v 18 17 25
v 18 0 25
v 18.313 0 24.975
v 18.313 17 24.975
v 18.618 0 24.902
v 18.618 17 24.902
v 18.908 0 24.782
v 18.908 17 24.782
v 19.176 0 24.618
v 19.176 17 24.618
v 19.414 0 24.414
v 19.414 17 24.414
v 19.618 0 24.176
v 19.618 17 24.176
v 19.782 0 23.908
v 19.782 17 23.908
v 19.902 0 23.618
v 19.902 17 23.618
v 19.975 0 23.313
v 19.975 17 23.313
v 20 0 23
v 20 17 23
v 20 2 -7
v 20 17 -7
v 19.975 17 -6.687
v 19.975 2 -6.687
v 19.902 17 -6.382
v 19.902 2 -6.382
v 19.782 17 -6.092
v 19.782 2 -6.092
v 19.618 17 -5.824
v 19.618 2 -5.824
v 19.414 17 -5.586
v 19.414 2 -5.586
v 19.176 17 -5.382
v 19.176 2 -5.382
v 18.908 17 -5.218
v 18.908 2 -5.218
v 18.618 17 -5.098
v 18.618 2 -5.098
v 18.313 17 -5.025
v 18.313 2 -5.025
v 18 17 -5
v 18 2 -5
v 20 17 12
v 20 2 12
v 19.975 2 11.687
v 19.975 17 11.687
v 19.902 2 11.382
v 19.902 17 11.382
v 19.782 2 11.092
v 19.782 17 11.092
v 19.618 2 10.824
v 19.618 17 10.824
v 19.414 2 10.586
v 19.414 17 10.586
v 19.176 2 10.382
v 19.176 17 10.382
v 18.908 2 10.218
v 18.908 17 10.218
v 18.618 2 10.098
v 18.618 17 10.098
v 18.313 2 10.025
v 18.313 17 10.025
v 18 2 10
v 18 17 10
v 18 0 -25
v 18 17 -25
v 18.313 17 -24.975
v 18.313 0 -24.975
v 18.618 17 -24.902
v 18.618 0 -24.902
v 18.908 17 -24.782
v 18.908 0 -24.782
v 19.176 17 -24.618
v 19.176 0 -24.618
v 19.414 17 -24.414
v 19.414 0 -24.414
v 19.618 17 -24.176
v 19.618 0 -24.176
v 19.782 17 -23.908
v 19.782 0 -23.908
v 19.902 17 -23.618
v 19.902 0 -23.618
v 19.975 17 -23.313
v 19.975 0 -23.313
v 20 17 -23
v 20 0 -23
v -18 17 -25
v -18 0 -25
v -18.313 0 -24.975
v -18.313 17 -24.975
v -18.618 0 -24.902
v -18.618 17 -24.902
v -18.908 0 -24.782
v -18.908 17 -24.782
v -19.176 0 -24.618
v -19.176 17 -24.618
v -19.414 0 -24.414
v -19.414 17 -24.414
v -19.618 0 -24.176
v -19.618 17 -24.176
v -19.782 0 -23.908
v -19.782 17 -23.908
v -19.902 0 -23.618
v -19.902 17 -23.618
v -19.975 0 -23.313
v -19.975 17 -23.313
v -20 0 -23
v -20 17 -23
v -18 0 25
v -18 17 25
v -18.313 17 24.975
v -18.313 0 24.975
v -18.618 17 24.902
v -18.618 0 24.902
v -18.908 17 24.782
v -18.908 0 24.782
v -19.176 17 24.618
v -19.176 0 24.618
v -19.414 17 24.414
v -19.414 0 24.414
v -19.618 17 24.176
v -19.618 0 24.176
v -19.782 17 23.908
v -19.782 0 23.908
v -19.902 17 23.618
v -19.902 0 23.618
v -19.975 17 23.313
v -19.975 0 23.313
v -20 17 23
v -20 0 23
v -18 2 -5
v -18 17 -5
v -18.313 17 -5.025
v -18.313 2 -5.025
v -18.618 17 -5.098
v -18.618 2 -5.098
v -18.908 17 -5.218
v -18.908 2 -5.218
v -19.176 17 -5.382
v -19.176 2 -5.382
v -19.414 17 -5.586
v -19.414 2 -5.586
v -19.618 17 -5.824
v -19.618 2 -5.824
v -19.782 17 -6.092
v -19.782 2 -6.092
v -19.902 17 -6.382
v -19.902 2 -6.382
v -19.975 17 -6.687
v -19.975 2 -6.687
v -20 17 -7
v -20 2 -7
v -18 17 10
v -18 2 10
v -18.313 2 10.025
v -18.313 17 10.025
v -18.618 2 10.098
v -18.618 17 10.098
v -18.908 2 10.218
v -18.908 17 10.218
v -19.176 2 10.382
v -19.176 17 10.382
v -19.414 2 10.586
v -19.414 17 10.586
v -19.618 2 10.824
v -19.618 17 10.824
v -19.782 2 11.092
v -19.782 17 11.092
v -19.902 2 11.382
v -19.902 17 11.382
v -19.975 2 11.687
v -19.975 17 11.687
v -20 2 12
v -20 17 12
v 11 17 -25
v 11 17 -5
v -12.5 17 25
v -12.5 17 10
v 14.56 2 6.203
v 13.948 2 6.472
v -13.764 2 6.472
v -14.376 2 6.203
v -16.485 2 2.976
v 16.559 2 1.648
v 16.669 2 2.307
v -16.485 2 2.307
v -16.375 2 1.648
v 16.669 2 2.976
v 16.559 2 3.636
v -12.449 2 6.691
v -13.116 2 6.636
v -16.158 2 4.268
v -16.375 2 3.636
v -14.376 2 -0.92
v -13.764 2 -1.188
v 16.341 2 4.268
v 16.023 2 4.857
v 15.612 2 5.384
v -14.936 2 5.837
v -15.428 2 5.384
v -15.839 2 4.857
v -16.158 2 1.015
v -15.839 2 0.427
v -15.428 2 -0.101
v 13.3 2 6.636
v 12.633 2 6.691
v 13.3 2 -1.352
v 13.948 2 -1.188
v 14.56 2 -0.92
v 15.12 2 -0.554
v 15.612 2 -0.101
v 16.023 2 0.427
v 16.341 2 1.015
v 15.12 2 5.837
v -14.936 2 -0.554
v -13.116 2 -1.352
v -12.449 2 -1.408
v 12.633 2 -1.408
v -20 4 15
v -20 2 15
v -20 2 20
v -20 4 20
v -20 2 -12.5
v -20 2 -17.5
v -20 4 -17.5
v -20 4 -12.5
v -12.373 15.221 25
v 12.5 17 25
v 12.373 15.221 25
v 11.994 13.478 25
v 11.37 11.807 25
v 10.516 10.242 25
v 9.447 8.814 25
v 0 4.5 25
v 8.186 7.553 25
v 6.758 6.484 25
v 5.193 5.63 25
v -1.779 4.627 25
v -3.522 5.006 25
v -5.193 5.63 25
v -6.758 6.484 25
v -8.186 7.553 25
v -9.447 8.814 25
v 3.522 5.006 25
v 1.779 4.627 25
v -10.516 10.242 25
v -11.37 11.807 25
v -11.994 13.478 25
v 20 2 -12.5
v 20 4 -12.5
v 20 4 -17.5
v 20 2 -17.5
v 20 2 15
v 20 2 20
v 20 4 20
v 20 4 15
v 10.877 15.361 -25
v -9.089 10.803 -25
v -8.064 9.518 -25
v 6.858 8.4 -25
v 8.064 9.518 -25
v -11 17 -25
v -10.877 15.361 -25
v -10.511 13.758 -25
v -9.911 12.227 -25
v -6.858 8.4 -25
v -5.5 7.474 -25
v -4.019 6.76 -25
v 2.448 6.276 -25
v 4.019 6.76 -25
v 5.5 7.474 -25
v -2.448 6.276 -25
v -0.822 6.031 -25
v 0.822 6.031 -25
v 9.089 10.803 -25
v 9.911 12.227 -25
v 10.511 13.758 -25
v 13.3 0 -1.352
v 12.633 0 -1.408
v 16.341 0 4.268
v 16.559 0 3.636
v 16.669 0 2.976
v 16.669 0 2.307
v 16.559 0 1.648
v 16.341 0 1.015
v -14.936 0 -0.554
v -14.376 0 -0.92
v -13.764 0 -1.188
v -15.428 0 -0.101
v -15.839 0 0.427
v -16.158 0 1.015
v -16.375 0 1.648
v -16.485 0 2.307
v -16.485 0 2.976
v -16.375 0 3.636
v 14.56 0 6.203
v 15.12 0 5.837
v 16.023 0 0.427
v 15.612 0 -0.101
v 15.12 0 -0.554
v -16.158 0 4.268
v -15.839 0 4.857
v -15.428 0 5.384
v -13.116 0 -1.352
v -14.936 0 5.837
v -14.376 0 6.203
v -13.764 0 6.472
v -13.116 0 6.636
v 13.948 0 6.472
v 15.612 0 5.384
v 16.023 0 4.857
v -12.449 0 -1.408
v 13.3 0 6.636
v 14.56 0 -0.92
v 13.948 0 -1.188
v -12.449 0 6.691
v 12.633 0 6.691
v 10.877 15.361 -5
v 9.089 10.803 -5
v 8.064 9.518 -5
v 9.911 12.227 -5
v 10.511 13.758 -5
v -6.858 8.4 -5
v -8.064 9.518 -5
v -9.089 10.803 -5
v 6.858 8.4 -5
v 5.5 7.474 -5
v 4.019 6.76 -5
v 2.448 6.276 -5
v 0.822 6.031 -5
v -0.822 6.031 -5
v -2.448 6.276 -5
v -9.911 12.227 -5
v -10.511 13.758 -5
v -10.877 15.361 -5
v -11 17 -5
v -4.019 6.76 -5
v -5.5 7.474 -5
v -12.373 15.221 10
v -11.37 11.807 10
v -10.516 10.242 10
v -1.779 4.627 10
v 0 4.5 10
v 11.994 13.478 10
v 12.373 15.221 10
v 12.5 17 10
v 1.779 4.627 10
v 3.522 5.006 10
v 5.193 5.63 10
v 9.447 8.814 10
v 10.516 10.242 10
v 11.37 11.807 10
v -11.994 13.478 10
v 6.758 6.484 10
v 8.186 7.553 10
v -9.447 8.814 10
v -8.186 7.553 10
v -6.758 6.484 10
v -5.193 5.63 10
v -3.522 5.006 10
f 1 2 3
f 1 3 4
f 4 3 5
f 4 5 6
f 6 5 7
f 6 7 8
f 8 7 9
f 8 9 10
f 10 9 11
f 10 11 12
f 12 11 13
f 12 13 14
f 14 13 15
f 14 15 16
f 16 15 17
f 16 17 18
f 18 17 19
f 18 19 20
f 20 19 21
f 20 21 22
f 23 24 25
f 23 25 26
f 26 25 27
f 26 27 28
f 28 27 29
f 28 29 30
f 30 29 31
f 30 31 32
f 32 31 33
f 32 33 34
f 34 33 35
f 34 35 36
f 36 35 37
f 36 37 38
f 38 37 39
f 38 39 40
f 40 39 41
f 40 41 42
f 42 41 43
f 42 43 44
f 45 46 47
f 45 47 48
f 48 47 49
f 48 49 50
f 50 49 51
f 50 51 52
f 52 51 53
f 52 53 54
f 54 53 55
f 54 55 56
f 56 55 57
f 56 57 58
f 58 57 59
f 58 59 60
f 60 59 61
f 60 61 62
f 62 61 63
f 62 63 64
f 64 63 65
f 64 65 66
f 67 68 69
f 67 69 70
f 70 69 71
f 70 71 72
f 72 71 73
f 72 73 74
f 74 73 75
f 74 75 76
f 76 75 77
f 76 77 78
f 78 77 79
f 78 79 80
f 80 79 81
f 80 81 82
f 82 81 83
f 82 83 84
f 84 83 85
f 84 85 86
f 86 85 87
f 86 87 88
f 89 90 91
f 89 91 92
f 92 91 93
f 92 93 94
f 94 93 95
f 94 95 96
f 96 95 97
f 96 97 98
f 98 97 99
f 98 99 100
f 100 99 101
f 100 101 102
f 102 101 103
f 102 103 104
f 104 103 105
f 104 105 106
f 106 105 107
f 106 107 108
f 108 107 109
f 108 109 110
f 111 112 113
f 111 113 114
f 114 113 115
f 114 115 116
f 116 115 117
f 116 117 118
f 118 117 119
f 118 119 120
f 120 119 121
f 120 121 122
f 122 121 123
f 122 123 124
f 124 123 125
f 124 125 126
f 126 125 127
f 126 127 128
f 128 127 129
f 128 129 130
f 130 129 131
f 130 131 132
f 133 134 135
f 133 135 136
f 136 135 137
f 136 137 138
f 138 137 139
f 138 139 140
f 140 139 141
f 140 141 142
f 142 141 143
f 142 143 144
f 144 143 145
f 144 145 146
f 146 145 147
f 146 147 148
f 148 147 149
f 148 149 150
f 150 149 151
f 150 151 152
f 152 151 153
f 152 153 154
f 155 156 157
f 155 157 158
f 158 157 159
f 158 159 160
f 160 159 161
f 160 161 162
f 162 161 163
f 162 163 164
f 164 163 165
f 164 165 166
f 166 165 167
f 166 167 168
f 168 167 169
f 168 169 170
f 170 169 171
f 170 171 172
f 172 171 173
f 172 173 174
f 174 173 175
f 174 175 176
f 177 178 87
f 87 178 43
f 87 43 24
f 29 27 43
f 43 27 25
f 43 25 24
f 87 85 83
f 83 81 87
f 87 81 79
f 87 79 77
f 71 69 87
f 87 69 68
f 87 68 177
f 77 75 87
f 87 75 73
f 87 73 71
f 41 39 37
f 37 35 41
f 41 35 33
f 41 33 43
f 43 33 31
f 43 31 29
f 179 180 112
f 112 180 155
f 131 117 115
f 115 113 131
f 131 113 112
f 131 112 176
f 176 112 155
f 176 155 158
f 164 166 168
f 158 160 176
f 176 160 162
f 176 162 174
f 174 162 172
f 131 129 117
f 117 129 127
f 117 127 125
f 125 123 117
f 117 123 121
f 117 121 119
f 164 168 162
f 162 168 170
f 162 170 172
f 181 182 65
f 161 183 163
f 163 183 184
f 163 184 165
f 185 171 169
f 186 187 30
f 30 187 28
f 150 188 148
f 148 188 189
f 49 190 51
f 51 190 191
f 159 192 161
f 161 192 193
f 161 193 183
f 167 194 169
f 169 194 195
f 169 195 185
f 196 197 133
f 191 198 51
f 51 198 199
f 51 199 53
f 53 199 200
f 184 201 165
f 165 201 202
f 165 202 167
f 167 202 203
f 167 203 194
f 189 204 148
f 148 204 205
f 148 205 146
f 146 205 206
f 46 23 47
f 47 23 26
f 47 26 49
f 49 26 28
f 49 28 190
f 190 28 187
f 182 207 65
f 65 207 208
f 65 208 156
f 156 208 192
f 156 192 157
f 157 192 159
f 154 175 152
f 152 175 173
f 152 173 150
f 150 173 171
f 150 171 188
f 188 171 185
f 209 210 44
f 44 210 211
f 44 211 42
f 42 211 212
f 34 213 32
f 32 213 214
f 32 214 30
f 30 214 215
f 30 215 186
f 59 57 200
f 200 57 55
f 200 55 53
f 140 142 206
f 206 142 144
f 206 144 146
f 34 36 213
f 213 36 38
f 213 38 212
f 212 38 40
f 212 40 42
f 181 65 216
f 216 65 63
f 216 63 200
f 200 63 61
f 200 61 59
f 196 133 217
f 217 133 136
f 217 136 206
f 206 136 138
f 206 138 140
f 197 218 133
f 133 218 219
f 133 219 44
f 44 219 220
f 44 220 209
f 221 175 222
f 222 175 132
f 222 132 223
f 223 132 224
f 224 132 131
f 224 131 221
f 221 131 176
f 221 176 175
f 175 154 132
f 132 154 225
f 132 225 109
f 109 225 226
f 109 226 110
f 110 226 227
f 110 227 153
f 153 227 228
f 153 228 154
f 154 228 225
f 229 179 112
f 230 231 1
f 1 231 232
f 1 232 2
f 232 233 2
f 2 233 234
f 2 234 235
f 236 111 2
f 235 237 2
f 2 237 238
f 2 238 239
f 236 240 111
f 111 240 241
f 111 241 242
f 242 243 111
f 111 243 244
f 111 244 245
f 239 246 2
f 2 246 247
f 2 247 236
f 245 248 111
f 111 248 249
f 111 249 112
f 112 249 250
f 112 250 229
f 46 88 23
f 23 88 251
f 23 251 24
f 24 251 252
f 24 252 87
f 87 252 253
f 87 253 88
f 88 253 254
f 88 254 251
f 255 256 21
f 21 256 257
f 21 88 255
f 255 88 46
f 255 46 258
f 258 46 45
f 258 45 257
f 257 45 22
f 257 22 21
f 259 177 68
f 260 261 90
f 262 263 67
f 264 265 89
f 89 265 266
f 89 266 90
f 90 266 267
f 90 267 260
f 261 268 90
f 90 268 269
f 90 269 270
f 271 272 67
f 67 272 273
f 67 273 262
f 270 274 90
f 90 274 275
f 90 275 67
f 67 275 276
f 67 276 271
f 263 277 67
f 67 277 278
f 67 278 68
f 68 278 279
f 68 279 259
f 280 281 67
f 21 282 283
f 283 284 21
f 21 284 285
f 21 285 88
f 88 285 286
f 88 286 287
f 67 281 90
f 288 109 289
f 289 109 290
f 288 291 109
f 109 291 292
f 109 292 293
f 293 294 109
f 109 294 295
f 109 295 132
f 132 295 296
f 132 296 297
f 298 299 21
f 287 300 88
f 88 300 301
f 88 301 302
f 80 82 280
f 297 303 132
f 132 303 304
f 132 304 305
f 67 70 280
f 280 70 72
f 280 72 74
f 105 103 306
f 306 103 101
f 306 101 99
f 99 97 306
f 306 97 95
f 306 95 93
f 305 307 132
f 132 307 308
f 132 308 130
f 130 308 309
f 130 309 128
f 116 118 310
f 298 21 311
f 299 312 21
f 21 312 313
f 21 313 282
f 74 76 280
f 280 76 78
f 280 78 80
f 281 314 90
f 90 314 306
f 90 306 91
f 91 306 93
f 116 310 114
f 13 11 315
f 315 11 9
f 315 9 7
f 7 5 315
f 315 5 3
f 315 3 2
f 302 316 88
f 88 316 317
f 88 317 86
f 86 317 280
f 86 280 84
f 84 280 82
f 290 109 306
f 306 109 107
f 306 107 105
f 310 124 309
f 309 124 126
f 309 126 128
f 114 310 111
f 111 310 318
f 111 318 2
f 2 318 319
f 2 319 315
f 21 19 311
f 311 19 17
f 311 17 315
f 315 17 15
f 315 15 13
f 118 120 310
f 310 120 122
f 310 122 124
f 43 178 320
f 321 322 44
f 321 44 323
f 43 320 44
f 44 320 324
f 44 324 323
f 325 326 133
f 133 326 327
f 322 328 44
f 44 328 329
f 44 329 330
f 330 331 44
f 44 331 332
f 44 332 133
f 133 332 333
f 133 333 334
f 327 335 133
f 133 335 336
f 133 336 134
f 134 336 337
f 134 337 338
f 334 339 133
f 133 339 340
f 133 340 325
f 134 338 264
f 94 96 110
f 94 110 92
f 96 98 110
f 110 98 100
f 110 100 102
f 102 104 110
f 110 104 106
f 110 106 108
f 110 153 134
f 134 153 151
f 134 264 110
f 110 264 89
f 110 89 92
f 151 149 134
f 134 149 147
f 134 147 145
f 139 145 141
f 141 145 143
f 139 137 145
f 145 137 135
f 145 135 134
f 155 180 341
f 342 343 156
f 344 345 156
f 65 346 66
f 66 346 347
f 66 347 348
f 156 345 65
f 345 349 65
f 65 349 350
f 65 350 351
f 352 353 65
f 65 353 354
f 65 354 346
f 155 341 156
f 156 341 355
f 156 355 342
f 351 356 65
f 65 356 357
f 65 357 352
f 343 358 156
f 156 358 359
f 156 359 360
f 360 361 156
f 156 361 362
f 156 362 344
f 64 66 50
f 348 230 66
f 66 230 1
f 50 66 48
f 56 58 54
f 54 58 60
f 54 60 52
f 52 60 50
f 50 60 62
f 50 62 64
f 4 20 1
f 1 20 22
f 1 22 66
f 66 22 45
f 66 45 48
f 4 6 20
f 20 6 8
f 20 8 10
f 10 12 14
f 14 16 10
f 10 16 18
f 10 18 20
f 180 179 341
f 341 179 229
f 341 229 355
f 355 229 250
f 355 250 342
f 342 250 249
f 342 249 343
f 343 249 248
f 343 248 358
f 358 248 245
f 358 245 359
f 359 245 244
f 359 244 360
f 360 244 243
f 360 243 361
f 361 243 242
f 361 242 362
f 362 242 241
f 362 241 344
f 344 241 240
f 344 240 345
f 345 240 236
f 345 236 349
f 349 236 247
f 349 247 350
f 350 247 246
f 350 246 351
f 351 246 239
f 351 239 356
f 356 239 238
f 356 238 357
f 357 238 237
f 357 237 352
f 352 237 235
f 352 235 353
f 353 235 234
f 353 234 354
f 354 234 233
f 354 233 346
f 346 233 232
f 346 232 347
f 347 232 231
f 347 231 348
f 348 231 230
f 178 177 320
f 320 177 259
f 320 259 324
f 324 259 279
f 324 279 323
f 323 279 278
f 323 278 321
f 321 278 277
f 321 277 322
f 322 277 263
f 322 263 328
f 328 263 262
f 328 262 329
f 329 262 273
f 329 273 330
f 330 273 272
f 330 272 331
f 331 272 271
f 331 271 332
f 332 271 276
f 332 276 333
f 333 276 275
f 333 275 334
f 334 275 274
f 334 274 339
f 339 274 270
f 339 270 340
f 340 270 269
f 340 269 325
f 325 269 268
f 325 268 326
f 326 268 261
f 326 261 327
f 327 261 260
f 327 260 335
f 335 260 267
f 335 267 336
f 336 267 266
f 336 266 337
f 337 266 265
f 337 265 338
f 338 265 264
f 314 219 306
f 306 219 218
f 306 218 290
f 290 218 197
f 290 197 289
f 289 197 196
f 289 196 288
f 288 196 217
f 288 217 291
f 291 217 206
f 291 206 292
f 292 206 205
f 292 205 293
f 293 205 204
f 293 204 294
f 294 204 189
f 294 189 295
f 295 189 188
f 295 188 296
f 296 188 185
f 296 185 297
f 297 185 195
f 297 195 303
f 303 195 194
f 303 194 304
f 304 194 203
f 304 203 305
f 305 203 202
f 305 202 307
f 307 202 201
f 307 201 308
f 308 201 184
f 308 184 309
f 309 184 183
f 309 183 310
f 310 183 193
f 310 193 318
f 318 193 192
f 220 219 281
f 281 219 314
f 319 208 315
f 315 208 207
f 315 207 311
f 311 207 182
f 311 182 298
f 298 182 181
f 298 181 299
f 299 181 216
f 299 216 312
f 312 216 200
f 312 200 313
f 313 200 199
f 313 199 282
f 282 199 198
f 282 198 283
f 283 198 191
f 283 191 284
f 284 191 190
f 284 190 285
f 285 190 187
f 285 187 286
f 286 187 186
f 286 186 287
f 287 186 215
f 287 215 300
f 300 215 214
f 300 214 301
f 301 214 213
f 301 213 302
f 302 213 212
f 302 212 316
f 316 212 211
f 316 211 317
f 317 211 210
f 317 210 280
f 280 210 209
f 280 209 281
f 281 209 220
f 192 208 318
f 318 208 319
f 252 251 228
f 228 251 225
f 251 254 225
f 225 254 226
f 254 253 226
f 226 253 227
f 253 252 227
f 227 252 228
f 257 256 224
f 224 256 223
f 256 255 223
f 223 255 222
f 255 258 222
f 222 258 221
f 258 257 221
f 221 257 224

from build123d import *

# Parameters (mm, degrees)
ESBO_O1_W                = 40
ESBO_O1_H                = 50
RESSALTO_EXTRUS_O1_DEPTH = 2
ESBO_O2_W                = 40
ESBO_O2_H                = 20
ESBO_O2_H_2              = 15
RESSALTO_EXTRUS_O2_DEPTH = 15
ESBO_O3_R                = 12.5
CORTE_EXTRUS_O1_DEPTH    = 22
ESBO_O4_R                = 11
CORTE_EXTRUS_O2_DEPTH    = 22
CORTE_EXTRUS_O3_DEPTH    = 22
ESBO_O6_W                = 5
ESBO_O6_H                = 2
CORTE_EXTRUS_O4_DEPTH    = 51.139804547
FILETE1_R                = 2
FILETE2_R                = 2
FILETE3_R                = 2
FILETE4_R                = 2
FILETE5_R                = 2
FILETE6_R                = 2
FILETE7_R                = 2
FILETE8_R                = 2


with BuildPart() as part:
    # Esboço1 → Ressalto-extrusão1 (new body)
    with BuildSketch(Plane(origin=(0, 0, 0), x_dir=(1, 0, 0), z_dir=(0, 1, 0))):
        Rectangle(ESBO_O1_W, ESBO_O1_H)
    extrude(amount=RESSALTO_EXTRUS_O1_DEPTH)

    # Esboço2 → Ressalto-extrusão2 (add)
    with BuildSketch(Plane(origin=(0, 2, 0), x_dir=(1, 0, 0), z_dir=(0, 1, 0))):
        with Locations((0, 15)):
            Rectangle(ESBO_O2_W, ESBO_O2_H)
        with Locations((0, -17.5)):
            Rectangle(ESBO_O2_W, ESBO_O2_H_2)
    extrude(amount=RESSALTO_EXTRUS_O2_DEPTH)

    # Esboço3 → Corte-extrusão1 (cut)
    with BuildSketch(Plane.XY.offset(25)):
        with Locations((0, 17)):
            Circle(ESBO_O3_R)
    extrude(amount=-CORTE_EXTRUS_O1_DEPTH, mode=Mode.SUBTRACT)

    # Esboço4 → Corte-extrusão2 (cut)
    with BuildSketch(Plane(origin=(0, 0, -25), x_dir=(-1, 0, 0), z_dir=(0, 0, -1))):
        with Locations((0, 17)):
            Circle(ESBO_O4_R)
    extrude(amount=-CORTE_EXTRUS_O2_DEPTH, mode=Mode.SUBTRACT)

    # Esboço5 → Corte-extrusão3 (cut)
    with BuildSketch(Plane(origin=(0, 2, 0), x_dir=(1, 0, 0), z_dir=(0, 1, 0))):
        with BuildLine():
            Line((-12.449166755, 1.40771236), (12.633097958, 1.40771236))
            ThreePointArc((12.633097958, 1.40771236), (16.682554855, -2.641744537), (12.633097958, -6.691201435))
            Line((12.633097958, -6.691201435), (-12.449166755, -6.691201435))
            ThreePointArc((-12.449166755, -6.691201435), (-16.498623653, -2.641744537), (-12.449166755, 1.40771236))
        make_face()
    extrude(amount=-CORTE_EXTRUS_O3_DEPTH, mode=Mode.SUBTRACT)

    # Esboço6 → Corte-extrusão4 (cut, through all)
    with BuildSketch(Plane.ZY.offset(20)):
        with Locations((-15, 3)):
            Rectangle(ESBO_O6_W, ESBO_O6_H)
        with Locations((17.5, 3)):
            Rectangle(ESBO_O6_W, ESBO_O6_H)
    extrude(amount=-CORTE_EXTRUS_O4_DEPTH, mode=Mode.SUBTRACT)

    # Filete1
    filete1_edges = [part.edges().sort_by_distance(p)[0] for p in [
        (-20, 9.5, 10),
    ]]
    fillet(filete1_edges, radius=FILETE1_R)

    # Filete2
    filete2_edges = [part.edges().sort_by_distance(p)[0] for p in [
        (-20, 9.5, -5),
    ]]
    fillet(filete2_edges, radius=FILETE2_R)

    # Filete3
    filete3_edges = [part.edges().sort_by_distance(p)[0] for p in [
        (-20, 8.5, 25),
    ]]
    fillet(filete3_edges, radius=FILETE3_R)

    # Filete4
    filete4_edges = [part.edges().sort_by_distance(p)[0] for p in [
        (-20, 8.5, -25),
    ]]
    fillet(filete4_edges, radius=FILETE4_R)

    # Filete5
    filete5_edges = [part.edges().sort_by_distance(p)[0] for p in [
        (20, 8.5, -25),
    ]]
    fillet(filete5_edges, radius=FILETE5_R)

    # Filete6
    filete6_edges = [part.edges().sort_by_distance(p)[0] for p in [
        (20, 9.5, 10),
    ]]
    fillet(filete6_edges, radius=FILETE6_R)

    # Filete7
    filete7_edges = [part.edges().sort_by_distance(p)[0] for p in [
        (20, 9.5, -5),
    ]]
    fillet(filete7_edges, radius=FILETE7_R)

    # Filete8
    filete8_edges = [part.edges().sort_by_distance(p)[0] for p in [
        (20, 8.5, 25),
    ]]
    fillet(filete8_edges, radius=FILETE8_R)


solid = part.part
